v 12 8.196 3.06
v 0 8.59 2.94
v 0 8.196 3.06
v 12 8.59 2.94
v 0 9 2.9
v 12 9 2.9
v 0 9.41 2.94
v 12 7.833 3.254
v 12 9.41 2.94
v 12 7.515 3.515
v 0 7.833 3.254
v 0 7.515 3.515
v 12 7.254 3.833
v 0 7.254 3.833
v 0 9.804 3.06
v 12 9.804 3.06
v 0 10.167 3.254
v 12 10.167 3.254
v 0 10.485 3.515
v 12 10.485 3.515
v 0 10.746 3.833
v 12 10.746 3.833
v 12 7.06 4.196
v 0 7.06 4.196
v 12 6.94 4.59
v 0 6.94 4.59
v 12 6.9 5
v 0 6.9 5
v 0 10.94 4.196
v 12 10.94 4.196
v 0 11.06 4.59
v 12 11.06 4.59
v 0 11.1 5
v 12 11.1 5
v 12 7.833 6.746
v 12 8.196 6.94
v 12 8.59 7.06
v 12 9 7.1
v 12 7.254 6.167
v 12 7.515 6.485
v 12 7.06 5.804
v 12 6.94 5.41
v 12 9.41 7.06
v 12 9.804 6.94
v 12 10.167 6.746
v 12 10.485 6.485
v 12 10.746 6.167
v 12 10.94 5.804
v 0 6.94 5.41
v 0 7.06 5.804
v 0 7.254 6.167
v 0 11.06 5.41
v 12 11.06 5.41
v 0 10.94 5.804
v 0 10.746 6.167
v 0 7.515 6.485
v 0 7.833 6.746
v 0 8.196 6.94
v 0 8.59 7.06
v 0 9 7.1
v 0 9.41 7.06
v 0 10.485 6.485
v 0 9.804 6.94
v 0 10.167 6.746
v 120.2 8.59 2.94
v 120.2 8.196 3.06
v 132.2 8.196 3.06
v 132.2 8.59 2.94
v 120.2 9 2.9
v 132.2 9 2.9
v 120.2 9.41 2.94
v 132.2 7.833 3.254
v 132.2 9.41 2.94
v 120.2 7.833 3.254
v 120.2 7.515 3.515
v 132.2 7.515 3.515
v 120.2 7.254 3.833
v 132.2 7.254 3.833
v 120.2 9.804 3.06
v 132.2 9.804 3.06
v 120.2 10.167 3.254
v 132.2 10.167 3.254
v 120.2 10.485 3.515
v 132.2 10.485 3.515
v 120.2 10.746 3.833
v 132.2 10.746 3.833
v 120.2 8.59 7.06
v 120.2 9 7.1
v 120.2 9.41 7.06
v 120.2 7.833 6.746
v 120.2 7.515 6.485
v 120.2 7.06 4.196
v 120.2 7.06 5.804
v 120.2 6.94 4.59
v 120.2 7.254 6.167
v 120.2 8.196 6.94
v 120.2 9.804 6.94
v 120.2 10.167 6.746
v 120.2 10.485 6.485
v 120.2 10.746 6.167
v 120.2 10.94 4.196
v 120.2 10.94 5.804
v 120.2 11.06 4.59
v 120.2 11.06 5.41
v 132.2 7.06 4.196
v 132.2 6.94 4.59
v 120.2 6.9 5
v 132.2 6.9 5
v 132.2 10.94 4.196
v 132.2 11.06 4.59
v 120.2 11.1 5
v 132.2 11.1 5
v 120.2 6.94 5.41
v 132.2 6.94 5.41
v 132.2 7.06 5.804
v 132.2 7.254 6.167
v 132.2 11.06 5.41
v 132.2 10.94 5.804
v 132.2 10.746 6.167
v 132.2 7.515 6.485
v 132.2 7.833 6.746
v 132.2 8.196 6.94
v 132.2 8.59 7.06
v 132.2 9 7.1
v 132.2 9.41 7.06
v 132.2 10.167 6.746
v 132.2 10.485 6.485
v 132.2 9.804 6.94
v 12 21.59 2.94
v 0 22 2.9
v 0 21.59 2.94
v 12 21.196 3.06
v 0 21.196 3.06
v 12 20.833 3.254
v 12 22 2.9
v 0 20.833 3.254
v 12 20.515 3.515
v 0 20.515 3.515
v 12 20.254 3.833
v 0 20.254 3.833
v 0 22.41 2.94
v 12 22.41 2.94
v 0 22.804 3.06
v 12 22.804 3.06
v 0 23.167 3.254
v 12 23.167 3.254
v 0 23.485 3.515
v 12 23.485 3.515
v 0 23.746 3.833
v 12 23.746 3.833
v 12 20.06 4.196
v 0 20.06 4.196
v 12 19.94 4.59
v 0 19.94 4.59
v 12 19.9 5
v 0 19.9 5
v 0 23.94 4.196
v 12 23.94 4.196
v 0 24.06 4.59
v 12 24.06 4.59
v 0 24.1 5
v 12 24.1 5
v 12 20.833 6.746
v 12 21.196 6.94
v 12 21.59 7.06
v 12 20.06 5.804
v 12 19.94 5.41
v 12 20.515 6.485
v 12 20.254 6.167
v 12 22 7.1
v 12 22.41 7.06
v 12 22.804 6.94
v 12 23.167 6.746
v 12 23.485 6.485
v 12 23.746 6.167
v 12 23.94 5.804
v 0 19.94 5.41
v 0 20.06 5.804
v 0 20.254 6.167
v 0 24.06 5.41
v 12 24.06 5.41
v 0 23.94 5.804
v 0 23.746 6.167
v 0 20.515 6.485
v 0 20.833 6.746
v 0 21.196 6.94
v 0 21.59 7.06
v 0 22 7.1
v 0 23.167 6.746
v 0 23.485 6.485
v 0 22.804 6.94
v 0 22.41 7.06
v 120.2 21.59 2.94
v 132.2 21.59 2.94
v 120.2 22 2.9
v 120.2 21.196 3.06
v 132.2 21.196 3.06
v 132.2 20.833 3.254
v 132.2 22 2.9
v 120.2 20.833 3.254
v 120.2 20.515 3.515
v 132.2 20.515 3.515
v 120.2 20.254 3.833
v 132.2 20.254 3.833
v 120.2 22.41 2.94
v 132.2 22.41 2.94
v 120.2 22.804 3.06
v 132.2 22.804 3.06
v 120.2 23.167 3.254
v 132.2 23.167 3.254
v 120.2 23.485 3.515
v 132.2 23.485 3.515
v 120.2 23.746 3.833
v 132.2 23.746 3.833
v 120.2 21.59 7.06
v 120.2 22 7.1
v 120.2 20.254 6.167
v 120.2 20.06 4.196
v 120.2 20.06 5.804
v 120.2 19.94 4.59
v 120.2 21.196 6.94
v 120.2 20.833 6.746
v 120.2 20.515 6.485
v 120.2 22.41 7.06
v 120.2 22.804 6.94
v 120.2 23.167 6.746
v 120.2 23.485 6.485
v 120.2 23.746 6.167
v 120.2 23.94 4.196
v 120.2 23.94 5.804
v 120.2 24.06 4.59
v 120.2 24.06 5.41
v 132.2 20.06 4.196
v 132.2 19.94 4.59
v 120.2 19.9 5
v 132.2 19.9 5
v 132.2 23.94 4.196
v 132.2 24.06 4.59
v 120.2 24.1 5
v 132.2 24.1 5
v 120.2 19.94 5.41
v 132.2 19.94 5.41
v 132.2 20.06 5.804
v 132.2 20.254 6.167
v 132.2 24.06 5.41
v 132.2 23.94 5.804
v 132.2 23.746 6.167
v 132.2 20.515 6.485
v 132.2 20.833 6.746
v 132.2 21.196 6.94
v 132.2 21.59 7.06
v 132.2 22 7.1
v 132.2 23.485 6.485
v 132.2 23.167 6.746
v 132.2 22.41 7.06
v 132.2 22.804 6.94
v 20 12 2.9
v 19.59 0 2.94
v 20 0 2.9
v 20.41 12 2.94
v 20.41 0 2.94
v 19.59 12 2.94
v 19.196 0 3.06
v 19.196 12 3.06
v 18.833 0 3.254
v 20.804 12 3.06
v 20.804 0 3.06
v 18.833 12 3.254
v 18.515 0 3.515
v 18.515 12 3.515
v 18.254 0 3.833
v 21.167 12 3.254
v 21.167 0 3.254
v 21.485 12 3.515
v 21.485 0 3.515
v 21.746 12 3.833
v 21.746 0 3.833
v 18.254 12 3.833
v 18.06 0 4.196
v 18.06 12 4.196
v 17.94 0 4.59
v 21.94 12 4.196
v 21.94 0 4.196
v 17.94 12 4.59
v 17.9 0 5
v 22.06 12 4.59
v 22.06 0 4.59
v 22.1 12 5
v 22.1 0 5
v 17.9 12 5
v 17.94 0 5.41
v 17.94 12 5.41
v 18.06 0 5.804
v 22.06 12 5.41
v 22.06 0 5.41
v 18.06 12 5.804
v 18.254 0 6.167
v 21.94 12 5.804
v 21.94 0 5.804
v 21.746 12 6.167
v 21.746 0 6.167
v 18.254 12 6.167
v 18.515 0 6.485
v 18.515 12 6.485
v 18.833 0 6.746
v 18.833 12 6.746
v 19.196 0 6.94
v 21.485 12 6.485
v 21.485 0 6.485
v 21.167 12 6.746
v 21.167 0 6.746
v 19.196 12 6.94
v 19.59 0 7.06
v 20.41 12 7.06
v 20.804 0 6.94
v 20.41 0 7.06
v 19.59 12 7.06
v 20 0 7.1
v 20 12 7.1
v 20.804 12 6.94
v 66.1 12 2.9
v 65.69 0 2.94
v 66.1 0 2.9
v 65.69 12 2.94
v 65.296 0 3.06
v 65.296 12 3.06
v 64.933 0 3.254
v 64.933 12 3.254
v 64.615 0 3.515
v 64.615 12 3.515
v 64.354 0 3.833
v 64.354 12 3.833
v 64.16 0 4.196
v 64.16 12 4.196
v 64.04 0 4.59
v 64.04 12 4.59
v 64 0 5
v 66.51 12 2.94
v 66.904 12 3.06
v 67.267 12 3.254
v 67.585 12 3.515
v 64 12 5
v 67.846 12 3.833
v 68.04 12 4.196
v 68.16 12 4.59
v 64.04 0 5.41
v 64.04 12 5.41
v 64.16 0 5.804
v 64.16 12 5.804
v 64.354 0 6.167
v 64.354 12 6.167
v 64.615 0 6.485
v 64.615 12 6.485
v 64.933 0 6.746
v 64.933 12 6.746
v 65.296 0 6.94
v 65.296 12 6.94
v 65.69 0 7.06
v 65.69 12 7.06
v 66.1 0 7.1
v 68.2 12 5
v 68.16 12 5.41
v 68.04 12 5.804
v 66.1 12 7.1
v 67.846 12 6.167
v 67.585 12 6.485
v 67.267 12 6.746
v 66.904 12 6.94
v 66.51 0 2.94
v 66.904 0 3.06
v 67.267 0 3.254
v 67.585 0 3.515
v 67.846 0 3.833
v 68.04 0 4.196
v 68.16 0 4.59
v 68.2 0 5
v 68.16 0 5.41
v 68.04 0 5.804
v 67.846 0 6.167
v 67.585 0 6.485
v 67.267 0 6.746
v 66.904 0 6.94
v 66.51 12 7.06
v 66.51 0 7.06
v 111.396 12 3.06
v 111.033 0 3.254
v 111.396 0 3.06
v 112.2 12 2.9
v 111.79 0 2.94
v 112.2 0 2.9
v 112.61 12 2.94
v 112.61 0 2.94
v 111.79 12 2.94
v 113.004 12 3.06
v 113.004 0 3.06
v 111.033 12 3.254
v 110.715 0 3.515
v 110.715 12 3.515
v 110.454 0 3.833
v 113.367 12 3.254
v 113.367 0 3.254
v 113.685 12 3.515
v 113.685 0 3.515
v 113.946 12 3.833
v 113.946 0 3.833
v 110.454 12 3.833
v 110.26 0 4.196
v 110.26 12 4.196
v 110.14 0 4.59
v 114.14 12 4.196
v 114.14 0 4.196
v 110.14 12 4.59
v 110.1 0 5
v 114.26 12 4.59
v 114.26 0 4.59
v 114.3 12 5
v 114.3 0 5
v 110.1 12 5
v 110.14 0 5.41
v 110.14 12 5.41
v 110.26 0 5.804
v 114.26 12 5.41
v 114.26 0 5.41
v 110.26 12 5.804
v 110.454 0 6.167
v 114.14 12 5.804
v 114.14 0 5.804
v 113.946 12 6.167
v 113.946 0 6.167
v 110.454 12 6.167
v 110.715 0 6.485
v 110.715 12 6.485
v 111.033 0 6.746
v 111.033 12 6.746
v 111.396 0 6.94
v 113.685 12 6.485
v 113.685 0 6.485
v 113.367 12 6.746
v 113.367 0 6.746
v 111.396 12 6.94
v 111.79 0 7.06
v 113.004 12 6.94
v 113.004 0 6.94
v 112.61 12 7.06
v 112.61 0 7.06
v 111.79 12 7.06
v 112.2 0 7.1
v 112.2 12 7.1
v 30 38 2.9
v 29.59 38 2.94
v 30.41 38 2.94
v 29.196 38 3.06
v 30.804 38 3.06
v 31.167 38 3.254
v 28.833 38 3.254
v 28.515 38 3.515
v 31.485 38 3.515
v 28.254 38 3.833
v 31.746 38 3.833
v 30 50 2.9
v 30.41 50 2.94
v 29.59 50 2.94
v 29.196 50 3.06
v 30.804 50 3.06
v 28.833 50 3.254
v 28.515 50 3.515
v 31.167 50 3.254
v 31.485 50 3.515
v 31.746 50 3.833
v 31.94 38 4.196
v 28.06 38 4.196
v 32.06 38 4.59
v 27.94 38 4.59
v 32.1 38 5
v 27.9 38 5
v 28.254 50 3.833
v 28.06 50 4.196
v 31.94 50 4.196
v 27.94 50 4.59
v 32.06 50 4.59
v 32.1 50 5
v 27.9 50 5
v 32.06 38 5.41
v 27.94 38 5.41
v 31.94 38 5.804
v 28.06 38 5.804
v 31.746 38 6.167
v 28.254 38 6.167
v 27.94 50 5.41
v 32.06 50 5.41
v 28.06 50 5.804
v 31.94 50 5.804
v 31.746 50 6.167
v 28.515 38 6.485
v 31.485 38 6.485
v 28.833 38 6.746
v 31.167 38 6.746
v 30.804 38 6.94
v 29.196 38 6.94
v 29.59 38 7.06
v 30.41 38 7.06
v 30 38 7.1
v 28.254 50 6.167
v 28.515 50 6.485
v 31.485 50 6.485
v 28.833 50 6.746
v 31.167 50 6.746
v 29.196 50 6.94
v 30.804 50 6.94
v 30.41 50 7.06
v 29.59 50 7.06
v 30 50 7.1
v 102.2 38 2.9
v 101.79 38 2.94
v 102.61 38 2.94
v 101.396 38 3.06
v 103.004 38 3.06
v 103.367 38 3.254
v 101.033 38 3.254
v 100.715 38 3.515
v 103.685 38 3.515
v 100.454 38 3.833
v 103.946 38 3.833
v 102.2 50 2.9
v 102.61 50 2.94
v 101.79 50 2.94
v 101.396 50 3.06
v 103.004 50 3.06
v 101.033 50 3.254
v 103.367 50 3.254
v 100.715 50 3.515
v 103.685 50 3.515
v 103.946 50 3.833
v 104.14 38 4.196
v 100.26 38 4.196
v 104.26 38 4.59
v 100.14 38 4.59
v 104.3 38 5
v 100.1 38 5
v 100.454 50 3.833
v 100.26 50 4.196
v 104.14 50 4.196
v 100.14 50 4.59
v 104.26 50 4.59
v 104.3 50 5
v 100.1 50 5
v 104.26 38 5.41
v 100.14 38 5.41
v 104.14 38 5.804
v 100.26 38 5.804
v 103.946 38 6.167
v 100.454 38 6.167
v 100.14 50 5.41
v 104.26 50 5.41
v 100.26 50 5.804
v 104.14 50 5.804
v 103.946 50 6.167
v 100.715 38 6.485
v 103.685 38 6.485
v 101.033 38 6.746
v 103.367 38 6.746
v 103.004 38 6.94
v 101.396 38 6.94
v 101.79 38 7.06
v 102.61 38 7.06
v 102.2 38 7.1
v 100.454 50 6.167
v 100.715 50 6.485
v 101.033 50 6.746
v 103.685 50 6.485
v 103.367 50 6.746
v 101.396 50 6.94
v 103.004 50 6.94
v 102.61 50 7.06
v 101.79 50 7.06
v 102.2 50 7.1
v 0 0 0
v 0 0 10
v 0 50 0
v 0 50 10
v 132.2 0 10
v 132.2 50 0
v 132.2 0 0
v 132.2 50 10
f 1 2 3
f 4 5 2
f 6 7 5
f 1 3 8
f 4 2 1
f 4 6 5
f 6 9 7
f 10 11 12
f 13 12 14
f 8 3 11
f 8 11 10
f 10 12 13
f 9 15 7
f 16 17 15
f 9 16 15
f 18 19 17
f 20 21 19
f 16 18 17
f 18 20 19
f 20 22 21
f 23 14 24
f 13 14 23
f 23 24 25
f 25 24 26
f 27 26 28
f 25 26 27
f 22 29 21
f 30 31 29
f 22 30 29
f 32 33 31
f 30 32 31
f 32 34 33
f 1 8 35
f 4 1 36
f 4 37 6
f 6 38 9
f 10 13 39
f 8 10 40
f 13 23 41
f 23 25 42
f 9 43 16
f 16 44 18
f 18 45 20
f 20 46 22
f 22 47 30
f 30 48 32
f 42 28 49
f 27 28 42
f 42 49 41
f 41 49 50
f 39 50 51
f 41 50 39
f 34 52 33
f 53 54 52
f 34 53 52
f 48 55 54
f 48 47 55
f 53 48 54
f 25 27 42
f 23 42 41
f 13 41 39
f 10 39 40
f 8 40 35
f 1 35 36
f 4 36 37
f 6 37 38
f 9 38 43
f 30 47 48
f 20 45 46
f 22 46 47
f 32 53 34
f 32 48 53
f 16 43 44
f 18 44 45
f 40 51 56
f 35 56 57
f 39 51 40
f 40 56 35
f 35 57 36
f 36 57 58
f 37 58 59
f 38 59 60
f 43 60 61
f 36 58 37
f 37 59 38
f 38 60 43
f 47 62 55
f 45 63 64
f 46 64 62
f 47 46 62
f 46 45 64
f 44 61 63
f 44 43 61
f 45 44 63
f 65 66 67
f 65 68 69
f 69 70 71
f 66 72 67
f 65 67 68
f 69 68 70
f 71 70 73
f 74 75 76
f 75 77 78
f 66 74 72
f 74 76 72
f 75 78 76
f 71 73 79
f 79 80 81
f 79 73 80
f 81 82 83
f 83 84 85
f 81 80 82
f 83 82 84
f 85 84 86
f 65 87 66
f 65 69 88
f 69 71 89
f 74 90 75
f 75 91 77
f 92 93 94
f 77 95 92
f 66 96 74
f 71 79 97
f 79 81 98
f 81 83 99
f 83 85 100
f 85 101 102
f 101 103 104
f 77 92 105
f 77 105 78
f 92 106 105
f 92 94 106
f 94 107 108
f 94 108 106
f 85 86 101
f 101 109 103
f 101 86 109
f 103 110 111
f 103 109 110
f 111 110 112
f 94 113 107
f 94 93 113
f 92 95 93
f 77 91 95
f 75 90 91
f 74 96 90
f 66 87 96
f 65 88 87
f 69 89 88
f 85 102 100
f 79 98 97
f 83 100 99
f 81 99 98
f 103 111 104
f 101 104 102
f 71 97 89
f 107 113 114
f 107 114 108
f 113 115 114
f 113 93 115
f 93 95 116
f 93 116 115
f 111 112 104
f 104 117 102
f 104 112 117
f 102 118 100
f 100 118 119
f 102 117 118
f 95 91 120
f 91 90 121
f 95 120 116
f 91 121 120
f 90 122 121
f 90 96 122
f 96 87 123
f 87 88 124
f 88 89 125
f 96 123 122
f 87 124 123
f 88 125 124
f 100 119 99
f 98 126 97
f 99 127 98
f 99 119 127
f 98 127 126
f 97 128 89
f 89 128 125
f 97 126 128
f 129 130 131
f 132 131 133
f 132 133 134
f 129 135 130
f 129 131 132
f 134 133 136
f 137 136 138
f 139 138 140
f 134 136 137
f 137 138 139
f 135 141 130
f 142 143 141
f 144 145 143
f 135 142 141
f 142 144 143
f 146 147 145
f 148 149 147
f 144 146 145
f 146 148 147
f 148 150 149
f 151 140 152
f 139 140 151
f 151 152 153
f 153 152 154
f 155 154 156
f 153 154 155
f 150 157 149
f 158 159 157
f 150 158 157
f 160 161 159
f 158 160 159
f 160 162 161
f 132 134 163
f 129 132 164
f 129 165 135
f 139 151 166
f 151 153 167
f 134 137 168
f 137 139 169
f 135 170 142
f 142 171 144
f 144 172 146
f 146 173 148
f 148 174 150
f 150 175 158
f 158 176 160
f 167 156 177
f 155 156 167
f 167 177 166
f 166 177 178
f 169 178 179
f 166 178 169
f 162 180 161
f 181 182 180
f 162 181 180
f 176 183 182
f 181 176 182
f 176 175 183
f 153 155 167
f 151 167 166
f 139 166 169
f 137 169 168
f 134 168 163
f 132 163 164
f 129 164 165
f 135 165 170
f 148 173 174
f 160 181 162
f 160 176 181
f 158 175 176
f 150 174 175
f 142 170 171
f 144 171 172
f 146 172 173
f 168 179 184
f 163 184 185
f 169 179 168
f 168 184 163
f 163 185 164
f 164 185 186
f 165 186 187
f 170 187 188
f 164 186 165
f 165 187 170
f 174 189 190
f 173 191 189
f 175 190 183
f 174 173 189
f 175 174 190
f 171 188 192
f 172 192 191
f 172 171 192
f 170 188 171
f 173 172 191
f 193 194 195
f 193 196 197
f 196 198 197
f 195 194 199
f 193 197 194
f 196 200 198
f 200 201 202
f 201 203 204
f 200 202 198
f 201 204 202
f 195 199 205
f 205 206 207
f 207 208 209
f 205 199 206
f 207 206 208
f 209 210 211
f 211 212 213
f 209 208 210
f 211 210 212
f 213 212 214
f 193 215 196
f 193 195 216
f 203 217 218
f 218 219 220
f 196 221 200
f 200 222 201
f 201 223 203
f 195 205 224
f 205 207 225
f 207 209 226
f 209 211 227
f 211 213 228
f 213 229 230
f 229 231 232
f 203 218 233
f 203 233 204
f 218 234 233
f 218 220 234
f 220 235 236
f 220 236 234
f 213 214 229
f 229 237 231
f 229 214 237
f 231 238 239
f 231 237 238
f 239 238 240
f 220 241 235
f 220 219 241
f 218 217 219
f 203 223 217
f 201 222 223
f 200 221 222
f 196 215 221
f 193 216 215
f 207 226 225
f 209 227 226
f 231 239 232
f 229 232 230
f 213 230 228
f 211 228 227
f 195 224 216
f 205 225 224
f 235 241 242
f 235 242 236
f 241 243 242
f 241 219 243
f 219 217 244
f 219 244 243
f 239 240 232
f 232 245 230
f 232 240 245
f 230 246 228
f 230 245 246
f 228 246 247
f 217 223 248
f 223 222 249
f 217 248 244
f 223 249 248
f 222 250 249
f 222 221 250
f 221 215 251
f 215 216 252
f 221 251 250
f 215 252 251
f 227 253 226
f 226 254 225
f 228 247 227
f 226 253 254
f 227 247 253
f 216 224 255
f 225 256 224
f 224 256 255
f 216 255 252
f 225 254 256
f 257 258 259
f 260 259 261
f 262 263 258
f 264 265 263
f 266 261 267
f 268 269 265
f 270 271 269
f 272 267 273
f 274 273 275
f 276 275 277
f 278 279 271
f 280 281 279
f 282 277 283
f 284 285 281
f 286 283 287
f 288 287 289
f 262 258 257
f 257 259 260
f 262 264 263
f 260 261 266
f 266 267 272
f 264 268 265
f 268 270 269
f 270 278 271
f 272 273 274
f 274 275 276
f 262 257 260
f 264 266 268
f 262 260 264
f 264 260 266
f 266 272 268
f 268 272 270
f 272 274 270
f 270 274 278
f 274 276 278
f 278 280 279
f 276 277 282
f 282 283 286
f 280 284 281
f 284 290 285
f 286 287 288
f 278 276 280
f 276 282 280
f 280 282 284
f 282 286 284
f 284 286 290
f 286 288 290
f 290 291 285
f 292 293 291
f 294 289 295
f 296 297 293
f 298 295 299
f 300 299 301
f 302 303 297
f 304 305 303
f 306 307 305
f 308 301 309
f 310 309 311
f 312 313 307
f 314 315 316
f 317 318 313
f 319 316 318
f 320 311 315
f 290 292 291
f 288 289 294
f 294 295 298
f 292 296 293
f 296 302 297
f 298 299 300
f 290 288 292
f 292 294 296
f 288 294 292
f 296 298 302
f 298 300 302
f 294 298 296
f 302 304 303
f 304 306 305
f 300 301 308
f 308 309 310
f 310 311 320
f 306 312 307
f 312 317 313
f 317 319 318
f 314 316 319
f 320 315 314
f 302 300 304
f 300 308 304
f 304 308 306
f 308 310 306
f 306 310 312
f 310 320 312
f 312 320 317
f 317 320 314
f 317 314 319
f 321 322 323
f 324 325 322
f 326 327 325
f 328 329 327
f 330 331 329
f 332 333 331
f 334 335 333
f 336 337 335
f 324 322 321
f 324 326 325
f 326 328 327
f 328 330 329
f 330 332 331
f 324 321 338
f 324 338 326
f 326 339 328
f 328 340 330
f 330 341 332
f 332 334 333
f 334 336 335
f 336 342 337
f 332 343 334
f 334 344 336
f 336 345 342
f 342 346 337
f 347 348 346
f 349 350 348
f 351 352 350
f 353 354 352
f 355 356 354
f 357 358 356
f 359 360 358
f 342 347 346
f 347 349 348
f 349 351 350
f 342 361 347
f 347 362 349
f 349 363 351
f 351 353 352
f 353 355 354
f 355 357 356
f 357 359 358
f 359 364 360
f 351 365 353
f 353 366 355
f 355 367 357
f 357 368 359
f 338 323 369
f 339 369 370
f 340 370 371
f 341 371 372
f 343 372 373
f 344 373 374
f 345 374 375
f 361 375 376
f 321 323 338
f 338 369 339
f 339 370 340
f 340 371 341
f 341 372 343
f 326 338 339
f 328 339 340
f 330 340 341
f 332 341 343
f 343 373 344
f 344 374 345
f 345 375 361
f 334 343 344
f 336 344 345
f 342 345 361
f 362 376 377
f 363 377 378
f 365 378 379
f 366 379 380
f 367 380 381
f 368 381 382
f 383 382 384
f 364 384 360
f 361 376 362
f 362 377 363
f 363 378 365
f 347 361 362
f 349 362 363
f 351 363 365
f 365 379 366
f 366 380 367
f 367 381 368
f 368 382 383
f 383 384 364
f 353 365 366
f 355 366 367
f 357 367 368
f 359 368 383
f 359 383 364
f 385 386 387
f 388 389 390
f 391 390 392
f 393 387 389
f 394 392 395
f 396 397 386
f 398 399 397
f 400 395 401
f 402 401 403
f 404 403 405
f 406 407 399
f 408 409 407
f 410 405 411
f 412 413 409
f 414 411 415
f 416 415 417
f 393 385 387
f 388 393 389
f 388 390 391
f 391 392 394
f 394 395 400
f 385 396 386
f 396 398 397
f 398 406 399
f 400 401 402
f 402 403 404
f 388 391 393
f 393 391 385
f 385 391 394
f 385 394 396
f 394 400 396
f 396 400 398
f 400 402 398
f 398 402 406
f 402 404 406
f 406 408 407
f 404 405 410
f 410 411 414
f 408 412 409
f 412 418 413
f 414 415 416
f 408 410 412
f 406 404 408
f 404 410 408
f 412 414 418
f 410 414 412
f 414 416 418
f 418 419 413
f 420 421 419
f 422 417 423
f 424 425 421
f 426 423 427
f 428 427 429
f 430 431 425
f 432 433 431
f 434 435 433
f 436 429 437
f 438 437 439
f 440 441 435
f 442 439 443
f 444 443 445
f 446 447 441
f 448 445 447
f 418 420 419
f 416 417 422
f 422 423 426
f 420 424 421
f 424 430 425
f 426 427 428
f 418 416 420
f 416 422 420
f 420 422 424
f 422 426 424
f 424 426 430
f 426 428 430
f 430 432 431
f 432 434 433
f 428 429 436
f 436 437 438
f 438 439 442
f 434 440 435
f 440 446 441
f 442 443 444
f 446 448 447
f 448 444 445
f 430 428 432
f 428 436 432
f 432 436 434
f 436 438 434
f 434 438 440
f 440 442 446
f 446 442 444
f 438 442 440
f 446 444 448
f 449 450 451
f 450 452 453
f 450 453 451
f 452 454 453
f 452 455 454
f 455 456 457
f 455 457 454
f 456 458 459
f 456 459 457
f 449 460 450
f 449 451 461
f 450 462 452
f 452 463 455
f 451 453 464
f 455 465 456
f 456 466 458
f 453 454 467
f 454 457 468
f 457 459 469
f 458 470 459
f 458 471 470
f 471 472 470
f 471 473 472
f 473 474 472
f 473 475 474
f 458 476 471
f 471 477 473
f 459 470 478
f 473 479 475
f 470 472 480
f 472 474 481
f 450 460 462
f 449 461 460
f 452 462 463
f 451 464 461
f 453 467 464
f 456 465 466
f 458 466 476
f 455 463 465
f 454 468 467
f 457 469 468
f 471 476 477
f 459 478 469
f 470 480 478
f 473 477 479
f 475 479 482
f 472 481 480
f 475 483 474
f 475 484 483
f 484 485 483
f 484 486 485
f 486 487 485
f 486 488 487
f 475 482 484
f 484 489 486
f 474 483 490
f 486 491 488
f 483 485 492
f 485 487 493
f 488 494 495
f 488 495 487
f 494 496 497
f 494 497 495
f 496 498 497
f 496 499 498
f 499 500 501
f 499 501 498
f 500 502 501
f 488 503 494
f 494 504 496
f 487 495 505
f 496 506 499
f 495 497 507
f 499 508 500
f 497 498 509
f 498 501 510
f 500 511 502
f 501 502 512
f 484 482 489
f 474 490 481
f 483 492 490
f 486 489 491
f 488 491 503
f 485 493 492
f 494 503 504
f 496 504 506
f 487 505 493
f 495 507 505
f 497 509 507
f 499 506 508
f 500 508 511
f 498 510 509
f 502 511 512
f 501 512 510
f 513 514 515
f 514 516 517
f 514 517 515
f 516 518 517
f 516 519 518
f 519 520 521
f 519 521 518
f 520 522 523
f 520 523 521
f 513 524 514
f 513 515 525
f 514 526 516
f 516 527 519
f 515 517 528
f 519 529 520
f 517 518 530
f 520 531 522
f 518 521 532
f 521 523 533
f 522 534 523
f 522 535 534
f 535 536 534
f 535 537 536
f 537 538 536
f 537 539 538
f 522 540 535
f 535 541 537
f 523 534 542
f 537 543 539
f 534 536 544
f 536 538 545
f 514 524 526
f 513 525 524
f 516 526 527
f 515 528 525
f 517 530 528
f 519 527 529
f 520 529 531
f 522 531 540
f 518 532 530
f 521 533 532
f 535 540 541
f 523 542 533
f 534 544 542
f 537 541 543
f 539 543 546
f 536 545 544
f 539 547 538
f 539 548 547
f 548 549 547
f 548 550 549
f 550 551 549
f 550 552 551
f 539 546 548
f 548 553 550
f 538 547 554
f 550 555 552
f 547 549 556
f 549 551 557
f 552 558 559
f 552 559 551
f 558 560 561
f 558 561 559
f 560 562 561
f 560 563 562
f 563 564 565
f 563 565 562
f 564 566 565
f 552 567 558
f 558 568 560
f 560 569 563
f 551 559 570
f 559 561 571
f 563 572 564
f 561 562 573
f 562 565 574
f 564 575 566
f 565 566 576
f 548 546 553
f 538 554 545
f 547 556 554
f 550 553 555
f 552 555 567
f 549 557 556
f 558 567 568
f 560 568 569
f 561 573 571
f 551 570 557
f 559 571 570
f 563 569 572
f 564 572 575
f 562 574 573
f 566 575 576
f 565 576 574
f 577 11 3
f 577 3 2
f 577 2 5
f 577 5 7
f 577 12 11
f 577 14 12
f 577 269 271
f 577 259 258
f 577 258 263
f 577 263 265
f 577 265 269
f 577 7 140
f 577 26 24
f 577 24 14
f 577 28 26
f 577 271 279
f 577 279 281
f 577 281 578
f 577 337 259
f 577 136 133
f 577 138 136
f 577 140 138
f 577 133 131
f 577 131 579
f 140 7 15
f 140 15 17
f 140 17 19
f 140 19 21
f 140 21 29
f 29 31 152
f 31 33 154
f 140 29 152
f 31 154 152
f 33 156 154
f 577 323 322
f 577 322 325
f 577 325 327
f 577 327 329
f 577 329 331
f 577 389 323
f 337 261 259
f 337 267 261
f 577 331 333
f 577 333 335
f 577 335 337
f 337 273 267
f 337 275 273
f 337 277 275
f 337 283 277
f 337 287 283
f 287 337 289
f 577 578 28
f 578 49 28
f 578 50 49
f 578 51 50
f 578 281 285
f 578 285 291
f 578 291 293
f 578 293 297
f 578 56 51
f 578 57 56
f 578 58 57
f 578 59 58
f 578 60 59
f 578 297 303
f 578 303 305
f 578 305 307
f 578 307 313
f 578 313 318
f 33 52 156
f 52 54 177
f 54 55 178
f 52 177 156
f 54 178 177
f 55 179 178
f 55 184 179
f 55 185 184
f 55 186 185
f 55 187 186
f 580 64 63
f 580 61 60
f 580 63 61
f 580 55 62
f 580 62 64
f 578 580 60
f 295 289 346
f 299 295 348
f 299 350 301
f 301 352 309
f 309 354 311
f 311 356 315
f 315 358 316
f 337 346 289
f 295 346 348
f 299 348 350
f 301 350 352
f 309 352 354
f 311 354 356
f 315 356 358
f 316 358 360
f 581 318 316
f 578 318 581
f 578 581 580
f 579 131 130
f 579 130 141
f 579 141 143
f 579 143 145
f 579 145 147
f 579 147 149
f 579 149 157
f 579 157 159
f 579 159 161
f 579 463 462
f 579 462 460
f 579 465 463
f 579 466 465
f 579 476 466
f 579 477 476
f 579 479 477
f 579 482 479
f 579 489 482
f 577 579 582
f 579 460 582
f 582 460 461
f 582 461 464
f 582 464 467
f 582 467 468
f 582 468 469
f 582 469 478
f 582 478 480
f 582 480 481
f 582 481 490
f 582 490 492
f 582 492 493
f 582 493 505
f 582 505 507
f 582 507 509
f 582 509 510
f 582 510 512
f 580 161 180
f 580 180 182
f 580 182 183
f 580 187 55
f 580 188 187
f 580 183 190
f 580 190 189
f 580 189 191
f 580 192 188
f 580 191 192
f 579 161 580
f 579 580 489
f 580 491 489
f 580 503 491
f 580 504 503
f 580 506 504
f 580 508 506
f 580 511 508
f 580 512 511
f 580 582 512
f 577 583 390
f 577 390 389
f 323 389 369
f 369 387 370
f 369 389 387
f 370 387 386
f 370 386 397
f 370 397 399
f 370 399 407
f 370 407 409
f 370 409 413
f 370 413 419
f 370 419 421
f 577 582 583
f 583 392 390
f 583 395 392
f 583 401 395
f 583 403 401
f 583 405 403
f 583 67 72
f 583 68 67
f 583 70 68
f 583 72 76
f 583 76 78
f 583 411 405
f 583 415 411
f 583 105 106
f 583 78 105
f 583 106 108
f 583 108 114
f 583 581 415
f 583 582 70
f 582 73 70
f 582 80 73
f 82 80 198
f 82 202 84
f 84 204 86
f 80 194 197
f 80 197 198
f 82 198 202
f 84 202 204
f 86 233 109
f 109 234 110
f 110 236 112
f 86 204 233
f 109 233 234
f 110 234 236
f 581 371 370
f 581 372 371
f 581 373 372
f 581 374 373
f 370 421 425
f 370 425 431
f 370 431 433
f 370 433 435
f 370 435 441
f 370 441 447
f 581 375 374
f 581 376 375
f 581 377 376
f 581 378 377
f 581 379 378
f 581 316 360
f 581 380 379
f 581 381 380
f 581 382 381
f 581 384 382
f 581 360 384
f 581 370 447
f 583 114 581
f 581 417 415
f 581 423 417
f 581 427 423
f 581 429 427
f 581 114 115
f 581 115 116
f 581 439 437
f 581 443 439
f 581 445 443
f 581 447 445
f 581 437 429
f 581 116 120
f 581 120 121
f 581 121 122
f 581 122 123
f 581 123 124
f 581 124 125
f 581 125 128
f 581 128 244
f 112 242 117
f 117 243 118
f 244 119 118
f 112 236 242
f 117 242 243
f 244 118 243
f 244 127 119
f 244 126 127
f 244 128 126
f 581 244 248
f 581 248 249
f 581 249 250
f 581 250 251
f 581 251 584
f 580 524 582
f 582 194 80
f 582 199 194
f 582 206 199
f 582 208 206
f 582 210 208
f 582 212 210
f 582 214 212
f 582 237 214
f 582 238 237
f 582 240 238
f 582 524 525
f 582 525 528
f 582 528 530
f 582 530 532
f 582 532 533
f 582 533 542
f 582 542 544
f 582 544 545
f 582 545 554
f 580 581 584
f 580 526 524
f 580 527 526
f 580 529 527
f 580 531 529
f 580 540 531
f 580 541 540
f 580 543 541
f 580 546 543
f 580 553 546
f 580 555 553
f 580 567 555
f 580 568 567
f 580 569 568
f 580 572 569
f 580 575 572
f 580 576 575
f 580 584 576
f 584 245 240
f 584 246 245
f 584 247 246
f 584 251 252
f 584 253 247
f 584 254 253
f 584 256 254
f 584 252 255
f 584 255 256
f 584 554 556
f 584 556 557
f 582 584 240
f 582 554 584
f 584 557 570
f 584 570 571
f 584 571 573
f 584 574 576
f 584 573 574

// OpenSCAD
// file: params.scad
// GENERATED by design/build.py from design/params.py -- do not edit by hand.

C = 60.0;
N_SLOTS = 16.0;
T_BLADE = 8.0;
SIDE_CLEAR = 0.2;
T_SPACER = 8.4;
END_CLEAR = 0.5;
R_TIP = 34.0;
R_ROOT = 25.0;
TEETH = 3.0;
STAGGER_DEG = 15.0;
BLADE_VARIANTS = 4.0;
SPACER_OD = 50.0;
SPACER_BORE = 29.2;
HEX_AF = 25.05;
HEX_BORE_AF = 25.1;
HEX_RELIEF_D = 3.2;
JOURNAL_D = 25.0;
PLATE_H = 70.0;
PLATE_L = 170.0;
LAYER_T = 10.0;
INNER_HOLE_D = 36.0;
CAP_HOLE_D = 32.0;
SEAL_BORE_DEPTH = 7.0;
CAP_BORE_DEPTH = 7.0;
COLLAR_OD = 46.0;
COLLAR_T = 4.0;
SLEEVE_OD = 30.0;
SLEEVE_ID = 25.05;
COMB_W = 25.0;
COMB_GAP = 0.5;
COMB_SLOT_CLEAR = 0.5;
COMB_SLOT_PAST_TIP = 3.0;
COMB_SCREW_Y = 74.0;
WALL_H = 50.0;
WALL_GAP = 2.0;
END_WASHER_T = 10.0;
END_SCREW_LEN = 30.0;
PRINTER_X = 250.0;
PRINTER_Y = 210.0;
PRINTER_Z = 210.0;
PRINT_WALL = 3.0;
PRINT_FLANGE = 4.0;
HOPPER_TOP_Z = 305.0;
HOPPER_TOP_IN = 180.0;
HOPPER_SPLIT_Z = 105.0;
TOP_HOLE_Y = 10.0;
TOP_HOLE_DEPTH = 10.0;
WALL_TOP_HOLE_X = 30.0;
WALL_TOP_HOLE_Y = 71.0;
SKIRT_HOLE_Y = 77.5;
SKIRT_HOLE_DEPTH = 8.0;
GUARD_HOLE_Y = 80.0;
GUARD_HOLE_Z = 9.0;
GUARD_CLEAR = 3.0;
BASE_T = 18.0;
MOTOR_PULLEY_D = 34.0;
GEARBOX_PULLEY_D = 68.0;
BELT_CENTRE_DIST = 250.0;
BELT_WIDTH = 13.0;
BELT_GUARD_CLEAR = 15.0;
WORM_AXIS_DROP = 63.0;
GROUND_Z = -368.0;
HANDLE_W = 110.0;
HANDLE_H = 40.0;
HANDLE_BACK_T = 8.0;
HANDLE_LIP_D = 26.0;
HANDLE_Z = -250.0;
HANDLE_SCREW_DX = 35.0;
HANDLE_HOLE_D = 4.5;
INSERT_D = 5.6;
INSERT_DEPTH = 6.0;
DRAWER_SW_Z = -300.0;
UFRONT_BELOW = 1.0;
UFRONT_GAP = 1.0;
SW_PAD_L = 92.0;
SW_PAD_W = 32.0;
SW_PAD_T = 10.0;
SW_SCREW_SPACING = 22.0;
INTERLOCK_IN = 12.0;
INTERLOCK_OUT_TRAVEL = 15.0;
BG_LAP_LEN = 16.0;
BG_LAP_CLEAR = 0.3;
BG_FOOT_W = 36.0;
BG_FOOT_T = 4.0;
BG_FOOT_REACH = 16.0;
DECK_PLY_T = 18.0;
DECK_MARGIN = 30.0;
LEG_SECTION = 45.0;
STUB_D = 25.0;
STUB_L = 80.0;
STUB_END_D = 30.0;
STUB_END_L = 60.0;
STUB_FLAT_AF = 22.0;
STUB_FLAT_L = 40.0;
STUB_KEY_L = 70.0;
T_LIMIT = 63.25;
HOOK_DEG = 10.0;
TEST_PIN_D = 12.0;
TEST_PIN_R = 32.0;
TEST_PIN_PROJ = 9.0;
TEST_BLADE_GAP = 1.0;
TEST_LEVER_L = 540.0;
TEST_LEVER_W = 50.0;
TEST_LEVER_T = 10.0;
TEST_LEVER_PIVOT_END = 25.0;
TEST_LEVER_PIVOT_D = 25.2;
TEST_WEIGHT_ARM = 500.0;
TEST_WEIGHT_HOLE_D = 10.5;
TEST_WEIGHT_KG = 11.9;
TEST_BLADE_ROT = -30.0;
TEST_LEVER_DEG = 0.0;
T_SET = 55.0;
T_OPERATING = 45.0;
TL_SET_AT_TL = 110.0;
CHAIN_RATIO = 2.0;
CHAIN_CD = 150.0;
SUBPLATE_T = 20.0;
GB_BOX = [100.0, 100.0, 145.0];
GB_BELOW_OUT = 113.0;
GB_BOSS = 9.0;
GB_FOOT = [124.0, 76.0];
GB_FLANGE = [140.0, 100.0, 8.0];
GB_WORM_STUB = 40.0;
SPROCKET_T = 7.2;
SPROCKET_OD_EXTRA = 6.2;
CHAIN_ENV_W = 18.0;
CHAIN_ENV_H = 12.1;
DRIVE_LEG_MIN = 60.0;
TENS_DELTA = 8.0;
TENS_TRAVEL = 10.0;
TENS_FLAT_W = 50.0;
TENS_T = 10.0;
TENS_BASE = [42.0, 70.0];
TENS_AXLE_D = 10.0;
GUARD_FRONT_X = -70.0;
DG_SEAM_Z = -95.0;
DG_FLANGE_W = 12.0;
DG_FLANGE_T = 4.0;
TLFIX_ARM = 500.0;
TLFIX_LEVER_L = 600.0;
TLFIX_LEVER_W = 50.0;
TLFIX_LEVER_T = 10.0;
TL_HUB_D = 42.0;
TL_FLANGE_T = 8.0;
TL_CM_OFFSET = 12.0;
TL_GB_GAP = 3.0;
TL_PACK_D = 70.0;
TL_PRESS_T = 8.0;
TL_SPRING_L = 26.0;
GB_HUB_L = 72.0;
OUT_SPACER_D = 36.0;
SHAFT_KEY_W = 8.0;
SHAFT_KEY_D = 4.0;
GB_KEY_END = 6.0;
TL_KEY_END = 3.0;
CIRCLIP_GROOVE_D = 23.9;
CIRCLIP_GROOVE_W = 1.3;
CIRCLIP_T = 1.2;
CIRCLIP_OD = 31.4;
CIRCLIP_EDGE = 3.0;
TL_COLLAR_D = 35.0;
TL_COLLAR_T = 5.0;
SHAFT_OUT_END = 3.0;
GB_RAIL_W = 50.0;
GB_RAIL_T = 10.0;
GB_RAIL_SLOT = 6.0;
GB_RAIL_BOLT_DX = 86.0;
GB_RAIL_END = 10.0;
GB_SPACER_L = 18.0;
DECK_RAIL_MARGIN = 20.0;
CHAIN_UPLIFT_LIMIT_N = 2100.0;
CHAIN_UPLIFT_DESIGN_N = 2500.0;
DECK_ANCHOR_D = 8.0;
DECK_ANGLE = [40.0, 40.0, 4.0];
DECK_ANGLE_L = 44.0;
DECK_ANGLE_DECK_BOLTS = 2.0;
DECK_ANGLE_LEG_BOLTS = 2.0;
FOOT_ANGLE_LEG_BOLTS = 2.0;
FOOT_ANGLE_ANCHORS = 2.0;
BIG_WASHER_D = 24.0;
BIG_WASHER_T = 2.0;
DECK_LEG_INSET_Y = 45.0;
TENS_HEAD_H = 40.0;
TENS_COL_GAP = 3.0;
TLFIX_PIN_L = 25.0;
TLFIX_LEVER_GAP = 5.0;
TLFIX_PIVOT_D = 25.2;
TLFIX_LUG = [20.0, 20.0];
TLFIX_LUG_GAP = 2.4;
SW_BODY = [31.0, 30.0, 90.0];
SW_HOLE_SPACING = 22.0;
SW_SLOT = [5.0, 23.0, 20.0];
ACT_SIZE = [12.0, 20.0, 50.0];
ACT_BLADE_T = 3.0;
ACT_BLADE_L = 20.0;
ACT_HOLE_SPACING = 20.0;
PILOT_D = 3.3;
PILOT_DEPTH = 8.0;
HSW_BODY = [42.0, 38.0, 112.0];
HSW_HOLE_SPACING = 22.0;
HSW_SLOT = [6.0, 24.0, 25.0];
HACT_SIZE = [15.0, 20.0, 68.0];
HACT_BLADE_T = 3.0;
HACT_BLADE_L = 22.0;
HACT_HOLE_SPACING = 30.0;
HSW_SCREW = [4.0, 4.5, 7.0, 3.0, 3.3];
HACT_SCREW = [5.0, 5.5, 8.5, 3.5, 4.2];
HSW_PAD_W = 48.0;
DSW_BODY = [30.0, 30.0, 90.0];
DSW_HOLE_SPACING = 22.0;
DSW_SLOT = [5.0, 18.0, 20.0];
DACT_SIZE = [12.0, 15.0, 50.0];
DACT_BLADE_T = 3.0;
DACT_BLADE_L = 20.0;
DACT_HOLE_SPACING = 20.0;
DSW_SCREW = [4.0, 4.5, 7.0, 3.0, 3.3];
DACT_SCREW = [4.0, 4.5, 7.0, 3.0, 3.3];
GRID_PITCH = 25.4;
GRID_WIRE = 2.0;
GRID_Z = -170.0;
GRID_CLEAT = 20.0;
GRID_MIN_DIST = 120.0;
GRID_MAX_OPEN = 30.0;
GRID_EDGE_GAP = 0.5;
GRID_MAX_EDGE_GAP = 10.0;
FINGER_D = 16.0;
GRID_BIN_CLEAR = 4.0;
GRID_SCREW = [4.0, 4.5, 8.0, 3.0, 3.0];
BEARING_name = "NA4905 needle roller bearing with inner ring";
BEARING_d = 25.0;
BEARING_D = 42.0;
BEARING_B = 17.0;
BEARING_F = 30.0;
BEARING_C = 23700.0;
BEARING_C0 = 20500.0;
GEAR_module = 1.5;
GEAR_z = 40.0;
GEAR_alpha = 20.0;
GEAR_bore = 25.0;
GEAR_hub_L = 0.0;
GEAR_cut_extra = 0.1;
GEAR_LAYER_T = 9.8;
GEAR_LAYERS = 4.0;
GEAR_SPACER_D = 36.0;
GEAR_ROUGH_D = 64.0;
GEAR_KEY_W = 8.0;
GEAR_KEYWAY_H = 3.3;
GEAR_KEY_TOOL_D = 3.0;
GEAR_KEY_CHAMFER = 1.5;
SEAL_d = 30.0;
SEAL_D = 42.0;
SEAL_B = 7.0;
THRUST_d = 30.0;
THRUST_D = 47.0;
THRUST_T = 4.0;
CRINKLE_d = 30.0;
CRINKLE_D = 39.0;
CRINKLE_n = 3.0;
CRINKLE_stack_h = 2.0;
SPROCKET_A_z = 15.0;
SPROCKET_A_hub_L = 22.4;
SPROCKET_A_hub_D = 39.0;
TL_z = 30.0;
TL_L = 62.0;
TL_D = 89.0;
TL_T_min = 34.0;
TL_T_max = 149.0;
CHAIN_pitch = 12.7;
DECK_ANCHOR = "M8";
IDLER_NAME = "#40 15T idler sprocket with bearing, M10/12 bore (bought)";

// derived
blades_per_shaft = 8.0;
stack_A = 131.2;
end_spacer_B = 8.2;
stack_B = 131.0;
chamber_L = 132.2;
overlap = 8.0;
tip_to_spacer = 1.0;
hex_AC = 28.9252;
bore_AC = 28.983;
bearing_x_drive = -18.5;
bearing_x_free = 150.7;
bearing_span = 169.2;
sleeve_L_drive = 10.5;
sleeve_L_free_A = 10.5;
sleeve_L_free_B = 10.7;
x_inner_ring_out_drive = -27.0;
x_cap_out_drive = -30.0;
collar_body_L_drive = 7.0;
x_collar_in_drive = -34.0;
x_collar_out_drive = -38.0;
gear_face = 39.2;
x_gear_in = -38.0;
x_gear_out = -77.2;
gear_spacer_L = 8.8;
x_gear_hub_out = -86.0;
x_sprocket_in = -86.0;
x_sprocket_out = -108.4;
x_sprocket_c = -97.2;
x_chain = -104.8;
x_inner_ring_out_free = 159.2;
x_cap_out_free = 162.2;
collar_body_L_free = 9.0;
x_collar_in_free = 168.2;
x_collar_out_free = 172.2;
shaft_end_free = 170.7;
shaft_end_A_drive = -106.9;
shaft_end_B_drive = -84.5;
shaft_A_len = 277.6;
shaft_B_len = 255.2;
sprocket_A_pd = 61.0836;
tl_sprocket_pd = 121.498;
hex_x0 = 1.5;
hex_x1 = 130.7;
gear_pitch_d = 60.0;
gear_od = 63.0;
gear_root_d_std = 56.25;
gear_root_d = 56.05;
gear_cut_depth = 3.475;
comb_edge_y = 55.5;
comb_slot_w = 9.0;
comb_slot_bottom_y = 67.0;
wall_inner_y = 66.0;

// blade torque test lever: computed from the blade outline (design/build.py, test_lever_numbers)
test_pin_Rmin = 30.9995;
test_pin_s = 1.4836;
test_pin_psi = 10.1718;
test_pin_contact_r = 32.54;
test_pin_clear = 0.1807;
hook_face_len = 4.546;
hook_face_end_r = 29.5336;
test_pin_off = -10.8544;
test_pin_edge_steel = 8.1456;
test_pin_ring_steel = 13.4;
test_pin_F = 1976.5625;
test_pin_sigma = 58.2555;
test_pin_deg = -19.8282;
test_face_nrm_deg = 70.0;
// file: common.scad
// common.scad -- shared include for every part file: parameters, blade profile, layout helpers.
// World frame: x along the shafts (x = 0 inner face of the drive-end plate), y across (A at -C/2, B at +C/2), z up.
include <params.scad>
include <blade_profile.scad>

FN = 96;                       // facets for round features (each module sets $fn = FN itself)
N_BLADES = N_SLOTS / 2;        // blades per shaft (= spacers per shaft)

// ---- local frame (u, v, w) -> world:  x = x0 + w,  y = u,  z = v   (a proper rotation)
// Used for everything that is "an axial part": w runs along the shaft, (u, v) = (y, z) across it.
module axial(x0 = 0)
    multmatrix([[0, 0, 1, x0], [1, 0, 0, 0], [0, 1, 0, 0], [0, 0, 0, 1]]) children();

// ---- layout of the cutting stacks
function shaft_y(sh)     = sh == "A" ? -C / 2 : C / 2;
function shaft_sign(sh)  = sh == "A" ? -1 : 1;                       // rotation direction about +x
function stack_x0(sh)    = END_CLEAR + (sh == "A" ? 0 : end_spacer_B); // x of the first blade
function blade_pitch()   = T_BLADE + T_SPACER;
function blade_x0(sh, k) = stack_x0(sh) + k * blade_pitch();         // blade k: x in [x0, x0 + T_BLADE]
function blade_xc(sh, k) = blade_x0(sh, k) + T_BLADE / 2;
function blade_variant(k) = k % BLADE_VARIANTS;
// rotation of blade k in its own 2D frame: j*60 - v*STAGGER, j = -floor(k/4)   (deg)
function blade_rot(k)    = -floor(k / BLADE_VARIANTS) * 60 - blade_variant(k) * STAGGER_DEG;
function sleeve_free_x0(sh) = END_CLEAR + (sh == "A" ? stack_A : stack_B);
function sleeve_free_L(sh)  = sh == "A" ? sleeve_L_free_A : sleeve_L_free_B;
function shaft_x_start(sh)  = sh == "A" ? shaft_end_A_drive : shaft_end_B_drive;
// y span of a comb bar: [lo, hi] (B on +y, A mirrored)
function comb_y_lo(sh) = sh == "B" ? comb_edge_y : -(comb_edge_y + COMB_W);
function comb_y_hi(sh) = sh == "B" ? comb_edge_y + COMB_W : -comb_edge_y;
// main file
// wall.scad -- front/back wall, 50 x 10 flat on edge. The two walls are mirror images (all holes are on y = +-71, the mid-plane).
include <common.scad>

WALL_T = 10;
WALL_END_HOLE_D = 4.2;  WALL_HOLE_L = 12;      // M5 tapped
WALL_Z0 = 5;                                    // sits on top of the comb bar (z = 5)

// Part frame: x = length 0..chamber_L, y = height 0..WALL_H (world z - 5), z = thickness 0..10 (world |y| - wall_inner_y).
module wall_part() {
    $fn = 32;
    difference() {
        cube([chamber_L, WALL_H, WALL_T]);
        // end-face holes (both ends) at world z = 14 and 27, mid-thickness
        for (zw = [14, 27], e = [0, 1]) {
            xs = e == 0 ? -1 : chamber_L - WALL_HOLE_L;
            translate([xs, zw - WALL_Z0, WALL_T / 2]) rotate([0, 90, 0]) cylinder(d = WALL_END_HOLE_D, h = WALL_HOLE_L + 1);
        }
        // bottom-edge holes going up at x = 20, L/2, L-20
        for (x = [20, chamber_L / 2, chamber_L - 20])
            translate([x, -1, WALL_T / 2]) rotate([-90, 0, 0]) cylinder(d = WALL_END_HOLE_D, h = WALL_HOLE_L + 1);
        // hopper-collar holes: top edge, down 12 deep at x = 30 and chamber_L - 30 (|y| = 71 is the mid-plane)
        for (x = [WALL_TOP_HOLE_X, chamber_L - WALL_TOP_HOLE_X])
            translate([x, WALL_H - WALL_HOLE_L, WALL_T / 2]) rotate([-90, 0, 0]) cylinder(d = WALL_END_HOLE_D, h = WALL_HOLE_L + 1);
    }
}
assert(abs(WALL_TOP_HOLE_Y - (wall_inner_y + WALL_T / 2)) < 1e-6);

// World placement. sgn = +1 (B side, +y) or -1 (A side, -y). The part is symmetric about its mid-plane, so the
// axis swap (part y -> world z, part z -> world |y|, a reflection) gives the same solid as a rotation would.
module wall(sgn = 1) {
    mirror([0, sgn < 0 ? 1 : 0, 0])
        multmatrix([[1, 0, 0, 0], [0, 0, 1, wall_inner_y], [0, 1, 0, WALL_Z0], [0, 0, 0, 1]]) wall_part();
}

wall_part();
